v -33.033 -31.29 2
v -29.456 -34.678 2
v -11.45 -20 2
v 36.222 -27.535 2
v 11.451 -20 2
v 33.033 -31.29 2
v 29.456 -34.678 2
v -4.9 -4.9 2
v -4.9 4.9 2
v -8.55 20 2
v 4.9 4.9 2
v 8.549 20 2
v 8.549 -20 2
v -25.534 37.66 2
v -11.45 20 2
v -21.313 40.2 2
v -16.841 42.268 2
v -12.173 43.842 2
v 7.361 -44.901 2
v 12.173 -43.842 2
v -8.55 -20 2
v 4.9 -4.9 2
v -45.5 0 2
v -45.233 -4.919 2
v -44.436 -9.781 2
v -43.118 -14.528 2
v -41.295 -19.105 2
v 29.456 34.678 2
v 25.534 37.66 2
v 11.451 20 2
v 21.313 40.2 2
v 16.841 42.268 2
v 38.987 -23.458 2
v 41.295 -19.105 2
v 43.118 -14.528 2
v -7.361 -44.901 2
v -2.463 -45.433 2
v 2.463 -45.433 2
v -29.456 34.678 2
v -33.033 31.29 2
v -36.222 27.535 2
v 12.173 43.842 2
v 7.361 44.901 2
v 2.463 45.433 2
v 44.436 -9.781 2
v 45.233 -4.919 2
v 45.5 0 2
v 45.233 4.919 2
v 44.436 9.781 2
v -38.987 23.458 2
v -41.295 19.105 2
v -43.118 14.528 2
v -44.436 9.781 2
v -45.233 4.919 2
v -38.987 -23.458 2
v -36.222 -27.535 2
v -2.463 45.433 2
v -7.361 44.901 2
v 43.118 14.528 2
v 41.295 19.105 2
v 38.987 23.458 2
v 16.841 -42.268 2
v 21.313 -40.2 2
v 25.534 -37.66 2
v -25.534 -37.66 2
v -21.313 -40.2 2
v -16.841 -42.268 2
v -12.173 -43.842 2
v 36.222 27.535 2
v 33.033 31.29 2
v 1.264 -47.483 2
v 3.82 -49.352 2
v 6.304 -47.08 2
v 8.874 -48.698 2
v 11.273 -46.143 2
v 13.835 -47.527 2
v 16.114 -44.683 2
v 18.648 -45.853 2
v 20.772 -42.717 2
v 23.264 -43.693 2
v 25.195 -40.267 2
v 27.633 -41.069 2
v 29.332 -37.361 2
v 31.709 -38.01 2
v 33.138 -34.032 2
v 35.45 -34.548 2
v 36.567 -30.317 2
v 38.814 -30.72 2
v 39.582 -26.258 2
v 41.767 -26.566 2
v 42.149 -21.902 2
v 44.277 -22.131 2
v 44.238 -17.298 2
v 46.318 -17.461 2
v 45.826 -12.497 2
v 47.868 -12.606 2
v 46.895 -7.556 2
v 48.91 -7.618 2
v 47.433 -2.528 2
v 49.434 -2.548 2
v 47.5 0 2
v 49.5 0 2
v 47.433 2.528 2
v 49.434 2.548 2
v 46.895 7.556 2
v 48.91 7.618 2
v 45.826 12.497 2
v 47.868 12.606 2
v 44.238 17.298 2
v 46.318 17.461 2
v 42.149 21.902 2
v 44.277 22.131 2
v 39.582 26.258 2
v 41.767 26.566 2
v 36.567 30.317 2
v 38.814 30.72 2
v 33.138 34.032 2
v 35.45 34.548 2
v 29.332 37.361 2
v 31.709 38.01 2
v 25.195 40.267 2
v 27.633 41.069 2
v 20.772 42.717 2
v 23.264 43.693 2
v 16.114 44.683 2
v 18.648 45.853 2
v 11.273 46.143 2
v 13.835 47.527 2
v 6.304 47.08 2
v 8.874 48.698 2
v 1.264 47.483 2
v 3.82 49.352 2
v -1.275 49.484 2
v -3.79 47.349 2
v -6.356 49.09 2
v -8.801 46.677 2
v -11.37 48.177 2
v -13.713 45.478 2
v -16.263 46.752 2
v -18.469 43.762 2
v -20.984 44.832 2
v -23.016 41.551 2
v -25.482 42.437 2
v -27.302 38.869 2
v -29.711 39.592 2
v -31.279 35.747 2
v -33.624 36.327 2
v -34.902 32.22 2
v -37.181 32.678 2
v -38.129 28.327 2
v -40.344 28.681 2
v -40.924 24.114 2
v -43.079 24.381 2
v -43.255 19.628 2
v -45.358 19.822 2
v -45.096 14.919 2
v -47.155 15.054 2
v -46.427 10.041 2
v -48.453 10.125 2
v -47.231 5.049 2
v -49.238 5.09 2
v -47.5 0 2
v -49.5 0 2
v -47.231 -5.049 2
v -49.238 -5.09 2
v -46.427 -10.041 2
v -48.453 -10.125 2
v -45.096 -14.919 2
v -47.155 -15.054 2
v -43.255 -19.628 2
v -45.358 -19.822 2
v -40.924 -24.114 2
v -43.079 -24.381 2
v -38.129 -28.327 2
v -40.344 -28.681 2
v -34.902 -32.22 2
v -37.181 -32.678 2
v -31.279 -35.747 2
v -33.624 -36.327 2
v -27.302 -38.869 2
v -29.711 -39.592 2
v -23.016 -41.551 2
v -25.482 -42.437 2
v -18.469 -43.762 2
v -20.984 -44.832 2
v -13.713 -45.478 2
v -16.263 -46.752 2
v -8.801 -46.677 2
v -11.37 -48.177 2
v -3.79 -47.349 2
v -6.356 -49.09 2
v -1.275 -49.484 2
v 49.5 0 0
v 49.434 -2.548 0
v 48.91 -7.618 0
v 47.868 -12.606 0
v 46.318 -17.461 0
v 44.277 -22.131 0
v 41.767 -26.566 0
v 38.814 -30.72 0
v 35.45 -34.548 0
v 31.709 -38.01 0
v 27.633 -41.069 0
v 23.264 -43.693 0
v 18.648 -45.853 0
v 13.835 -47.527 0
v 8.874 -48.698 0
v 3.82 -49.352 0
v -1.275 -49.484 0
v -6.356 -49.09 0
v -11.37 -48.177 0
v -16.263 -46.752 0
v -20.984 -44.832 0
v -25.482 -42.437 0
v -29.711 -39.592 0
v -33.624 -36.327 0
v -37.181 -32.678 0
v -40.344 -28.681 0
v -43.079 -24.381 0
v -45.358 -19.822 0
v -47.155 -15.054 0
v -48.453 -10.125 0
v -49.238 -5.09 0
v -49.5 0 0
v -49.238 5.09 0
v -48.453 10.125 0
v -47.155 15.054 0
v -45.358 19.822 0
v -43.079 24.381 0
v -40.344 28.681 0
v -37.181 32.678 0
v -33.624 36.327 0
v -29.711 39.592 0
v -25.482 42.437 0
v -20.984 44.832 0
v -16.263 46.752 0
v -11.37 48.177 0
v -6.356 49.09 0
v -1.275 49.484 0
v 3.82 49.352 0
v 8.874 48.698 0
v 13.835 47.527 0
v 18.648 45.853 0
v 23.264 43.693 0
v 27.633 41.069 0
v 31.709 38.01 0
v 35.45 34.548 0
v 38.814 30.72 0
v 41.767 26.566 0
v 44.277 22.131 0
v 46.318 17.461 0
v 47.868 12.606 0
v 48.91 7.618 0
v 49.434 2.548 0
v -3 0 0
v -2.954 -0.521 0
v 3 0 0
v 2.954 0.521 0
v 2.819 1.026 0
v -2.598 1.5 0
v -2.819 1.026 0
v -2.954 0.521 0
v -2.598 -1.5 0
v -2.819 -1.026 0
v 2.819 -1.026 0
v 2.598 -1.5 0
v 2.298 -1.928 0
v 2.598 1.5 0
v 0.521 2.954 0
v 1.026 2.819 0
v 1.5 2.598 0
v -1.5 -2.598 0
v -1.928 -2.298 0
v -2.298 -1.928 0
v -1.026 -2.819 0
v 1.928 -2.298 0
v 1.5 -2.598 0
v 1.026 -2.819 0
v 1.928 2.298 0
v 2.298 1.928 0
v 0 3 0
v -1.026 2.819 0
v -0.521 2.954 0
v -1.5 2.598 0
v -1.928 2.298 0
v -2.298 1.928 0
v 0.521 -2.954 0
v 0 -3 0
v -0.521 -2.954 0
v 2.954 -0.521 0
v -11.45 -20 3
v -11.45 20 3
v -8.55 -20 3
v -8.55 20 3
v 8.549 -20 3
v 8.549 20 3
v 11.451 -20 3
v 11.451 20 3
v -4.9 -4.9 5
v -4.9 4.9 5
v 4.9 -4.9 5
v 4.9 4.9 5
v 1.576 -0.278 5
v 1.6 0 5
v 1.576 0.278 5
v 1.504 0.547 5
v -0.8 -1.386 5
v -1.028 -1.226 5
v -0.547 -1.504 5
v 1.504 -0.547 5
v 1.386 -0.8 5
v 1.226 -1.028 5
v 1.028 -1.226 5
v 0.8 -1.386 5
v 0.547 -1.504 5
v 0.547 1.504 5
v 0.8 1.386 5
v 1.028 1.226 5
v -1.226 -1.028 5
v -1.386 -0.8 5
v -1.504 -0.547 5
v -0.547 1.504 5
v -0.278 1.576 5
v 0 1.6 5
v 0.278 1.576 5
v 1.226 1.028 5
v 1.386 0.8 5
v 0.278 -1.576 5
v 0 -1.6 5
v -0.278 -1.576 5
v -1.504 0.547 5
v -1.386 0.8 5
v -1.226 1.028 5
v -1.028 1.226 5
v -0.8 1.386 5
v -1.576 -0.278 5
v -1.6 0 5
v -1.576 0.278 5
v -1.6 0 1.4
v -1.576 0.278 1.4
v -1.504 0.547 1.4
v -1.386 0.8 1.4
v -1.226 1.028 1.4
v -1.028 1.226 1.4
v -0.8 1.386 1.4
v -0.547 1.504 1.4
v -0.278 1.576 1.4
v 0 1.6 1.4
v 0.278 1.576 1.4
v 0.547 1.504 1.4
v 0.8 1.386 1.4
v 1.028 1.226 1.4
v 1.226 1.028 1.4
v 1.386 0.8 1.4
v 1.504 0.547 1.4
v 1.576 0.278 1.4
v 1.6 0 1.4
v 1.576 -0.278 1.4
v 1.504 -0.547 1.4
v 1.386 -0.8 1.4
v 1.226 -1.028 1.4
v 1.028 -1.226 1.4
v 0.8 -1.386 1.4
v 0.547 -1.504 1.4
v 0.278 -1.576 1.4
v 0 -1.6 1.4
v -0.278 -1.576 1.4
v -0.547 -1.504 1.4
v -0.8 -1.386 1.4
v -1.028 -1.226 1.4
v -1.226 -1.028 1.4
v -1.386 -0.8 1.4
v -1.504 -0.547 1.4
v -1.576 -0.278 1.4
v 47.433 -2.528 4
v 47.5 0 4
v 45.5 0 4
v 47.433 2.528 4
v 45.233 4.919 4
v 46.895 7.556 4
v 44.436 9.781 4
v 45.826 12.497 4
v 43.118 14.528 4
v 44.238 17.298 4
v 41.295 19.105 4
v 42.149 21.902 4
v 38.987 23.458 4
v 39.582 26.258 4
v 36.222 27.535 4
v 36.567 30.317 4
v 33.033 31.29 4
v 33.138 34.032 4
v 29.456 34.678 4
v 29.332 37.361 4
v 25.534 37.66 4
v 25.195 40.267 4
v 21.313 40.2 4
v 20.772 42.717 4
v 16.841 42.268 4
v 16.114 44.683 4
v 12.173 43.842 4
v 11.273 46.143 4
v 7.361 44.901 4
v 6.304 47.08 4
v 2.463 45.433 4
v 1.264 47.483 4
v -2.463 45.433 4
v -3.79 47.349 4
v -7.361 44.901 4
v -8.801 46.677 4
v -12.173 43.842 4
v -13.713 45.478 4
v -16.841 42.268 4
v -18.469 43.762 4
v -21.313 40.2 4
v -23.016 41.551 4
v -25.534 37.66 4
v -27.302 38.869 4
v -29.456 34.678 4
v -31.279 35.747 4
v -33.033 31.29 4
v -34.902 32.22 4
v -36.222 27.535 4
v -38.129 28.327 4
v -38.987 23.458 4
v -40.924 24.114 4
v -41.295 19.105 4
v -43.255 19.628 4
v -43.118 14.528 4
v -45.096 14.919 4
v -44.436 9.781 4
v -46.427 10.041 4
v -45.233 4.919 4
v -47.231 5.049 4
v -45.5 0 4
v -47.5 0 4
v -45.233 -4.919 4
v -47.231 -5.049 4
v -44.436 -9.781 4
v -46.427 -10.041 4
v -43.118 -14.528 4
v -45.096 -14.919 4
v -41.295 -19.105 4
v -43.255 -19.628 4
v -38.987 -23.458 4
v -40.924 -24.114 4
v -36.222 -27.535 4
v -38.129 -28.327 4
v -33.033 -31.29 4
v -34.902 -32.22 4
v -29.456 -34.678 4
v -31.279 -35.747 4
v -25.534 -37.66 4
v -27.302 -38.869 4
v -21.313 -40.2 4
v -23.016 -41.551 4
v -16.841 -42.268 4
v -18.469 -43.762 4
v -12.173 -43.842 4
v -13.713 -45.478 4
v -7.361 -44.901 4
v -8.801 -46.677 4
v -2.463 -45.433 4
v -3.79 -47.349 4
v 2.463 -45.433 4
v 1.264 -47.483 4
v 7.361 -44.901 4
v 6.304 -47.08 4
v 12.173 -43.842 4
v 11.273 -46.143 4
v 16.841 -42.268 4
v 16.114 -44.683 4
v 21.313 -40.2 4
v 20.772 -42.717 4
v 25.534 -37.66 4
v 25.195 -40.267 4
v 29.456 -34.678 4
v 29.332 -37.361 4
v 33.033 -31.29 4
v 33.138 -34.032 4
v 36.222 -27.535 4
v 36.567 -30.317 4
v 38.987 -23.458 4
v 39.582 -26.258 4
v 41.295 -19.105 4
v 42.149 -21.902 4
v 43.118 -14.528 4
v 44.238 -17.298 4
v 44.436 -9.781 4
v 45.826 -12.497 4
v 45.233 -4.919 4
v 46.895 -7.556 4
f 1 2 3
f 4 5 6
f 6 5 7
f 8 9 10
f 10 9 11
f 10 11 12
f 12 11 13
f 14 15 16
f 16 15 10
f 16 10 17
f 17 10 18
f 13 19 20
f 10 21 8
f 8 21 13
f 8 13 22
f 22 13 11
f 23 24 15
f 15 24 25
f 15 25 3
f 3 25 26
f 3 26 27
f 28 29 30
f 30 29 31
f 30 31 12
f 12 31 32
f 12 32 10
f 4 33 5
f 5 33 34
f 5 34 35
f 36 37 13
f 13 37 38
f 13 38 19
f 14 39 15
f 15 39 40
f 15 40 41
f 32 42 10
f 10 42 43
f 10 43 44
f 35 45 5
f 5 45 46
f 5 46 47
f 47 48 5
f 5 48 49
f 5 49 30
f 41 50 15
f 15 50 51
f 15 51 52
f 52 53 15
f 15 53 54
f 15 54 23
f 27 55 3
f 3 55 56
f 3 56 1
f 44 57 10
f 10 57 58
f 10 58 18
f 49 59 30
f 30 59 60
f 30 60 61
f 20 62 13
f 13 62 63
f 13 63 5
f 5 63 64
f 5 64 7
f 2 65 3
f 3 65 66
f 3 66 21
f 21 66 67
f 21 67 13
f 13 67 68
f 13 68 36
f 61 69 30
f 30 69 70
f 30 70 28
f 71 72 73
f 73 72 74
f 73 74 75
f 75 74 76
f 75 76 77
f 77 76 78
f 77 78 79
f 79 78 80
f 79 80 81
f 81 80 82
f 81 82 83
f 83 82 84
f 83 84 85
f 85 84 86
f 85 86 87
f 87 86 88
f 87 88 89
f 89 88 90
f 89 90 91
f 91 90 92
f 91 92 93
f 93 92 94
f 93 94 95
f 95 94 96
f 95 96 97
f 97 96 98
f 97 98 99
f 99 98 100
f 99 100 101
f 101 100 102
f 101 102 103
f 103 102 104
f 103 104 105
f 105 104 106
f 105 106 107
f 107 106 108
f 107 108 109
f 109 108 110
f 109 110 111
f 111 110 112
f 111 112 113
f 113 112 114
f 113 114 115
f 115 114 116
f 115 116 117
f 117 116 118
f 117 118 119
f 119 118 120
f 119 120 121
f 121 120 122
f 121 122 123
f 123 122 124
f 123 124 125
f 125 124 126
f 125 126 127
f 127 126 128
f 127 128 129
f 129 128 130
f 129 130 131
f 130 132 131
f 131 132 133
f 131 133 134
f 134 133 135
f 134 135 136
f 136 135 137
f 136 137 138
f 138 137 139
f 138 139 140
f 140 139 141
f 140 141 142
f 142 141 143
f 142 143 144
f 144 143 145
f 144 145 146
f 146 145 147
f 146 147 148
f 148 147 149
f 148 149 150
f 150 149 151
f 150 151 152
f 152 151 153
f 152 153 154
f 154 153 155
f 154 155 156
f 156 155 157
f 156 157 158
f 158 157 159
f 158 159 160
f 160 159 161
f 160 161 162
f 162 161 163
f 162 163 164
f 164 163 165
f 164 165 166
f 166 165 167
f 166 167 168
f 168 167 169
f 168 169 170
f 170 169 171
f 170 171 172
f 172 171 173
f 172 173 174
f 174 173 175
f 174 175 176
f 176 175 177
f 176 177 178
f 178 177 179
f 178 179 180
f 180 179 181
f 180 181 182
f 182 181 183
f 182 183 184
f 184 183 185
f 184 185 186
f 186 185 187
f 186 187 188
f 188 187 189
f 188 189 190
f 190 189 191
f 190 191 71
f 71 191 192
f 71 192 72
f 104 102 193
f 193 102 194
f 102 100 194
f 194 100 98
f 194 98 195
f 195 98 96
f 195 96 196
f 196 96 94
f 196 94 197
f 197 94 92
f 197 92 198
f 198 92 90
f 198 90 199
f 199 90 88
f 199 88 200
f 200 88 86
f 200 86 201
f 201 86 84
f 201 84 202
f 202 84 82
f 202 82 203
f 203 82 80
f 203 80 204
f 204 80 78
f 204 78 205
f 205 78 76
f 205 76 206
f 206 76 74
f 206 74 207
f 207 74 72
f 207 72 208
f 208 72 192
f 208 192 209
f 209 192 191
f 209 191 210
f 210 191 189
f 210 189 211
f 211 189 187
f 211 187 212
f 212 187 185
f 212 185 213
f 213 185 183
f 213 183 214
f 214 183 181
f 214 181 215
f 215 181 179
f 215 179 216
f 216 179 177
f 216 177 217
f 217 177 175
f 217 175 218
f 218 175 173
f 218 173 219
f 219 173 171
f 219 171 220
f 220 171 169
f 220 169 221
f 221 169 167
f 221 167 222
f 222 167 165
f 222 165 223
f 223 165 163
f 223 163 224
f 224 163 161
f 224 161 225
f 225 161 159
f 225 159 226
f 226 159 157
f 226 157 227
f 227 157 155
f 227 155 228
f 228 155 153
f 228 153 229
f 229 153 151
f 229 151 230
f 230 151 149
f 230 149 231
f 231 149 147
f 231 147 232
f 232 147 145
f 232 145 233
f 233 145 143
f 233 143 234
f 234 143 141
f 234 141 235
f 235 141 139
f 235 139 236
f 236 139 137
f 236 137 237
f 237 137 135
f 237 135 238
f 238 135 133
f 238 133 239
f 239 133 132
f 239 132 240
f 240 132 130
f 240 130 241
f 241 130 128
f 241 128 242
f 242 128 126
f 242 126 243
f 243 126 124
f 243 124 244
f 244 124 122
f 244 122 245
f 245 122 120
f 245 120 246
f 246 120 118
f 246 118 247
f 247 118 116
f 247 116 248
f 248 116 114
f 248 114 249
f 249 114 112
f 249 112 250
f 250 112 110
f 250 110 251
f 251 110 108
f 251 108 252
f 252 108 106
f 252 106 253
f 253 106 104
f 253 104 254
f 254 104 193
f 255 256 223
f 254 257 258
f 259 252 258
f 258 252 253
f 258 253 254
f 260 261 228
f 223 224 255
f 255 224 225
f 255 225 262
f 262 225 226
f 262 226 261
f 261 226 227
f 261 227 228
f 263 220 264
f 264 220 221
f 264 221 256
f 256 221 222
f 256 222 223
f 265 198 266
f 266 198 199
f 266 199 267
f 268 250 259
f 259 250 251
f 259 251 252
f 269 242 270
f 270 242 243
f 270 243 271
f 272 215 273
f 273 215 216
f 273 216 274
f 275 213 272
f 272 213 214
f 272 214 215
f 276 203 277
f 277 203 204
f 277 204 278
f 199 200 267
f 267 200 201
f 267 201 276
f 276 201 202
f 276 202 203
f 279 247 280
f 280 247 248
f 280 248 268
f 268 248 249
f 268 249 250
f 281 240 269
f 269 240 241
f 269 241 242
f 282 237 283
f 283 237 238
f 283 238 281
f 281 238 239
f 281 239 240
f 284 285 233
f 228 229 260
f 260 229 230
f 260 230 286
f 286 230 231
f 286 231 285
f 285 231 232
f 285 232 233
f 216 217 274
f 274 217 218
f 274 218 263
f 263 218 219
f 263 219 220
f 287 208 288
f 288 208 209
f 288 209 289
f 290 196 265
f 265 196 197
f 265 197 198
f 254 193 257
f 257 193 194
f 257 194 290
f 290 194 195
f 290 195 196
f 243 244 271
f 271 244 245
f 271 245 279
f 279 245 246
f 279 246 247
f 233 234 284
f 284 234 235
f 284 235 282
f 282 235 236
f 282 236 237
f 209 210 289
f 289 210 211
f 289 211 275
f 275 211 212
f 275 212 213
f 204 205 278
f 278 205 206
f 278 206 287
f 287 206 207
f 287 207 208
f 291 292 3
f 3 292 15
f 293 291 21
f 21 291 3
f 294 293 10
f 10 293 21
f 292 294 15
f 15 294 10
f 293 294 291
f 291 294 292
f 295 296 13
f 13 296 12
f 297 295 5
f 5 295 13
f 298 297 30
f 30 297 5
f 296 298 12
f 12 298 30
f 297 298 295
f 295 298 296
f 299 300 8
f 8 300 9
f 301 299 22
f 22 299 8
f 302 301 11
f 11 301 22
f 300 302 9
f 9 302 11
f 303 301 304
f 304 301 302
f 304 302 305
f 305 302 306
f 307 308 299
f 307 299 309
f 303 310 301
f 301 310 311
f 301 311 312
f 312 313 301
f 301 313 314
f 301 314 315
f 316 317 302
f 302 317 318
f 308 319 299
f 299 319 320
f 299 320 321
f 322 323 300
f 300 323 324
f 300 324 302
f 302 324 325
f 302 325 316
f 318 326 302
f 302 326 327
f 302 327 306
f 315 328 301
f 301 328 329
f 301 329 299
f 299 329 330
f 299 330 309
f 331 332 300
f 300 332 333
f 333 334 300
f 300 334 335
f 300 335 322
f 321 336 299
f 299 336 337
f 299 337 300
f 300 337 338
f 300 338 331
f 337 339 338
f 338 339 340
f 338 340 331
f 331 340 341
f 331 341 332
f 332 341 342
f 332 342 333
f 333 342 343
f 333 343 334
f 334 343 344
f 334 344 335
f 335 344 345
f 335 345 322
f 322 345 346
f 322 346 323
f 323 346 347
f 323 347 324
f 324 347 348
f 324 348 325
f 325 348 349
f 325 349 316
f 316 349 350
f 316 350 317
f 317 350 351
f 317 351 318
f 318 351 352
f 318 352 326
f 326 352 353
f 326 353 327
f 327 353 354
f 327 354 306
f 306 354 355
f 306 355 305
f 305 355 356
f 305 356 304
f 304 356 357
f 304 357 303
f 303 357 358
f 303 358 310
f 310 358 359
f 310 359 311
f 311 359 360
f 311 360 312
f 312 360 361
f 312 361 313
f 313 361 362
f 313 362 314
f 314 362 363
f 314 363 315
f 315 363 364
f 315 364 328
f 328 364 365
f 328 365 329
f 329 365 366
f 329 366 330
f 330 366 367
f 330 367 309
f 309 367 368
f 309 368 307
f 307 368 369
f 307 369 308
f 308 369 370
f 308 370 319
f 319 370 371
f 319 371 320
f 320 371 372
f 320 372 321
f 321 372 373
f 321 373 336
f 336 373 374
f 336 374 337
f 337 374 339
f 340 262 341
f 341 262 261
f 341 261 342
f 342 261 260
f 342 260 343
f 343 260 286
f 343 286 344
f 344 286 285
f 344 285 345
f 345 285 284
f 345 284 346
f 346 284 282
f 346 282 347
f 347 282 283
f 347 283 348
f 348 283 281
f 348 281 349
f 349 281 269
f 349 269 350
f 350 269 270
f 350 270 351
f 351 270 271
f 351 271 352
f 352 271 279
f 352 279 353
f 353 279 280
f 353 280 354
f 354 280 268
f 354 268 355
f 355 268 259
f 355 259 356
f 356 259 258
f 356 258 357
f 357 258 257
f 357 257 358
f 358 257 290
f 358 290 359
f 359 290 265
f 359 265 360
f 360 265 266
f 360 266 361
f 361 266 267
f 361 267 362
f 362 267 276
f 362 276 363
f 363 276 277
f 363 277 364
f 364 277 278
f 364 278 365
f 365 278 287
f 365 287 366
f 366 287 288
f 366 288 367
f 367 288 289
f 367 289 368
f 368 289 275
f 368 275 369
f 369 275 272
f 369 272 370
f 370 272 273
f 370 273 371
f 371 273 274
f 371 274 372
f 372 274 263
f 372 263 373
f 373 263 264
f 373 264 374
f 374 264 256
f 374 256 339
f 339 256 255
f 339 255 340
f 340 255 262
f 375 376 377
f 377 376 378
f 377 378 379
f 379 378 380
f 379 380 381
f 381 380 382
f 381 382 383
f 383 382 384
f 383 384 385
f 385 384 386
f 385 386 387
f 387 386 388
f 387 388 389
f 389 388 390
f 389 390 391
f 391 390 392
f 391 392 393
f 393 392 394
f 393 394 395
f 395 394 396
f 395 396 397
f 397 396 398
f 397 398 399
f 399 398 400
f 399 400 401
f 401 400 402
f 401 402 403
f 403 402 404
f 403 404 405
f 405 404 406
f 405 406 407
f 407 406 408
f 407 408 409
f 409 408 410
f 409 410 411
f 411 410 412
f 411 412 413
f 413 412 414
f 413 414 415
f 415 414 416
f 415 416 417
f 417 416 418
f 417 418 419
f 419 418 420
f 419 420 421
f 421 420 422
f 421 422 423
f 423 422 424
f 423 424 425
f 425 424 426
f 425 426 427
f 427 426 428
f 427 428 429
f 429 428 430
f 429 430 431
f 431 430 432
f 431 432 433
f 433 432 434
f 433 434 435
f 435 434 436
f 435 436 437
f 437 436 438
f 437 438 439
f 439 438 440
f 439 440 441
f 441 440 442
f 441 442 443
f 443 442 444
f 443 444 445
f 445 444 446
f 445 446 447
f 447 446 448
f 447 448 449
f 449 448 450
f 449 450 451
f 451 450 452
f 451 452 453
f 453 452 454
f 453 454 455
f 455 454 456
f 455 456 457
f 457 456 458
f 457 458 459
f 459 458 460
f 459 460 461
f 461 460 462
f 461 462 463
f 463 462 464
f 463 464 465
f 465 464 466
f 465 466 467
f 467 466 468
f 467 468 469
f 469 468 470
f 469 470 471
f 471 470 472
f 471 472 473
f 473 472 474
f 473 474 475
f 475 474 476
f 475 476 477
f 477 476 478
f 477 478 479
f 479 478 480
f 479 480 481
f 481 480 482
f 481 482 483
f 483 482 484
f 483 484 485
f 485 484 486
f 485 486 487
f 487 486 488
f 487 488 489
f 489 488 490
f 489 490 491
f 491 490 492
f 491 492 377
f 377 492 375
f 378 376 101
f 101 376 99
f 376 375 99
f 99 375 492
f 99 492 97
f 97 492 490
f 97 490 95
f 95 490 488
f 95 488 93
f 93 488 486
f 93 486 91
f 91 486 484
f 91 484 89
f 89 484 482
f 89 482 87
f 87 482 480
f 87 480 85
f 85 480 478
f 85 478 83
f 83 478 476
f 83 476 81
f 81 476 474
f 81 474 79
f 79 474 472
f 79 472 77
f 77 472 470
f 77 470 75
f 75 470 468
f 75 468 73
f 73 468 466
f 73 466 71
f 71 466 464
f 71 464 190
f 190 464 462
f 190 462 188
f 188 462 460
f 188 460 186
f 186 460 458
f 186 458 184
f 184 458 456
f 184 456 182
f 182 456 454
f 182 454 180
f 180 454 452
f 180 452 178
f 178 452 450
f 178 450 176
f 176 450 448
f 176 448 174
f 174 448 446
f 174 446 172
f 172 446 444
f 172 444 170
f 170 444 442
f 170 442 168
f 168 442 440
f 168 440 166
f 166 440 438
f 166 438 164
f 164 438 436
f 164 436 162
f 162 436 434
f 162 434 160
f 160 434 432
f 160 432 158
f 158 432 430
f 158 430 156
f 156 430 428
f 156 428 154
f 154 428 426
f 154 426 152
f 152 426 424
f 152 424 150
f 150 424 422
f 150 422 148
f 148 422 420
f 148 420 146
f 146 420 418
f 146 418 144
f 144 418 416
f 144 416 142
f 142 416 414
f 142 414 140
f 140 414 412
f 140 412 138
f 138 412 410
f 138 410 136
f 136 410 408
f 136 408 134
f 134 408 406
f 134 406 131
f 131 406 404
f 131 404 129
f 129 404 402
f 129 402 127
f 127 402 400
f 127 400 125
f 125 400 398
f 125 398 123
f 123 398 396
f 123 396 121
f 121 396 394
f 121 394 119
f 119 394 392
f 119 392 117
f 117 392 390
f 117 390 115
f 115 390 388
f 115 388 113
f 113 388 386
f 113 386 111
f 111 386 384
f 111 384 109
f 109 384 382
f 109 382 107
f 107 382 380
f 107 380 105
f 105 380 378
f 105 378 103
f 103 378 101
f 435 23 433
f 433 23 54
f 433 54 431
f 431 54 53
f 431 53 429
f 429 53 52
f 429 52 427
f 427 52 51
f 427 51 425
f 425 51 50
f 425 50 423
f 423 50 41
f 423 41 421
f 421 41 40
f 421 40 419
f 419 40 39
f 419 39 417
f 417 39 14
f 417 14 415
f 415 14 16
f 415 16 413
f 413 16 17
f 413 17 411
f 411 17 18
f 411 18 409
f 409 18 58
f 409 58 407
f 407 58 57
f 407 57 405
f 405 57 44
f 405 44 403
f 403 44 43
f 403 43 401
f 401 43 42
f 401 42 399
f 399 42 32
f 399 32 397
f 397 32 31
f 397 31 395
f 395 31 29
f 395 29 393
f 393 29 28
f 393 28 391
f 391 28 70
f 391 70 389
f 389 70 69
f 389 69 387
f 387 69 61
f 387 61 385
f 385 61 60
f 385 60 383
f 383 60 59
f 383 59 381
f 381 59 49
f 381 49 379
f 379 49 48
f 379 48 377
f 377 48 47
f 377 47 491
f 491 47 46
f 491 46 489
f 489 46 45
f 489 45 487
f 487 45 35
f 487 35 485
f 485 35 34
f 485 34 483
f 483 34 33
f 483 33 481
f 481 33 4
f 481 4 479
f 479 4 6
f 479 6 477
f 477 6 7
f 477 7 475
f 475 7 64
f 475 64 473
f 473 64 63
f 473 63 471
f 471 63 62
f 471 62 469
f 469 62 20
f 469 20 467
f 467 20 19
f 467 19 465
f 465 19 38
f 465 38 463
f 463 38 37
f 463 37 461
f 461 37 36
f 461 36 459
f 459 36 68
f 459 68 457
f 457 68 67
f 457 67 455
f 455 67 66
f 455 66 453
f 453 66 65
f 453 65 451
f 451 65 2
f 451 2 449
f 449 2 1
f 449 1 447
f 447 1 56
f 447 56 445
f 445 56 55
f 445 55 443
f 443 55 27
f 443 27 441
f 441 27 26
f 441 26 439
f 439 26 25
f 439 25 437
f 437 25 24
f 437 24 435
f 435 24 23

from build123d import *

# Parameters (mm, degrees)
SKETCH1_R                                         = 49.5
MAIN_DEPTH                                        = 2
SKETCH2_W                                         = 2.9
SKETCH2_H                                         = 40
SKETCH2_W_2                                       = 2.90180049
MAKERBEAMFIX_DEPTH                                = 1
SKETCH3_W                                         = 9.8
SKETCH3_H                                         = 9.8
CENTRALFIX_DEPTH                                  = 3
CSK_FOR_M2_5_FLAT_HEAD_MACHINE_SCREW1_D           = 3.2
CSK_FOR_M2_5_FLAT_HEAD_MACHINE_SCREW1_CSINK_D     = 6
CSK_FOR_M2_5_FLAT_HEAD_MACHINE_SCREW1_CSINK_ANGLE = 90
SKETCH6_R                                         = 47.5
SKETCH6_R_2                                       = 45.5
CIRCLESUPPORT_DEPTH                               = 2


with BuildPart() as part:
    # Sketch1 → Main (new body)
    with BuildSketch(Plane.XY):
        Circle(SKETCH1_R)
    extrude(amount=MAIN_DEPTH)

    # Sketch2 → MakerBeamFix (add)
    with BuildSketch(Plane.XY.offset(2)):
        with Locations((-10, 0)):
            Rectangle(SKETCH2_W, SKETCH2_H)
        with Locations((10, 0)):
            Rectangle(SKETCH2_W_2, SKETCH2_H)
    extrude(amount=MAKERBEAMFIX_DEPTH)

    # Sketch3 → CentralFix (add)
    with BuildSketch(Plane.XY.offset(2)):
        Rectangle(SKETCH3_W, SKETCH3_H)
    extrude(amount=CENTRALFIX_DEPTH)

    # CSK for M2.5 Flat Head Machine Screw1 (through all)
    with Locations(Plane(origin=(0, 0, 0), x_dir=(-1, 0, 0), z_dir=(0, 0, -1))):
        with Locations((0, 0)):
            CounterSinkHole(CSK_FOR_M2_5_FLAT_HEAD_MACHINE_SCREW1_D / 2, CSK_FOR_M2_5_FLAT_HEAD_MACHINE_SCREW1_CSINK_D / 2, counter_sink_angle=CSK_FOR_M2_5_FLAT_HEAD_MACHINE_SCREW1_CSINK_ANGLE)

    # Sketch6 → CircleSupport (add)
    with BuildSketch(Plane.XY.offset(2)):
        Circle(SKETCH6_R)
        Circle(SKETCH6_R_2, mode=Mode.SUBTRACT)
    extrude(amount=CIRCLESUPPORT_DEPTH)


solid = part.part
